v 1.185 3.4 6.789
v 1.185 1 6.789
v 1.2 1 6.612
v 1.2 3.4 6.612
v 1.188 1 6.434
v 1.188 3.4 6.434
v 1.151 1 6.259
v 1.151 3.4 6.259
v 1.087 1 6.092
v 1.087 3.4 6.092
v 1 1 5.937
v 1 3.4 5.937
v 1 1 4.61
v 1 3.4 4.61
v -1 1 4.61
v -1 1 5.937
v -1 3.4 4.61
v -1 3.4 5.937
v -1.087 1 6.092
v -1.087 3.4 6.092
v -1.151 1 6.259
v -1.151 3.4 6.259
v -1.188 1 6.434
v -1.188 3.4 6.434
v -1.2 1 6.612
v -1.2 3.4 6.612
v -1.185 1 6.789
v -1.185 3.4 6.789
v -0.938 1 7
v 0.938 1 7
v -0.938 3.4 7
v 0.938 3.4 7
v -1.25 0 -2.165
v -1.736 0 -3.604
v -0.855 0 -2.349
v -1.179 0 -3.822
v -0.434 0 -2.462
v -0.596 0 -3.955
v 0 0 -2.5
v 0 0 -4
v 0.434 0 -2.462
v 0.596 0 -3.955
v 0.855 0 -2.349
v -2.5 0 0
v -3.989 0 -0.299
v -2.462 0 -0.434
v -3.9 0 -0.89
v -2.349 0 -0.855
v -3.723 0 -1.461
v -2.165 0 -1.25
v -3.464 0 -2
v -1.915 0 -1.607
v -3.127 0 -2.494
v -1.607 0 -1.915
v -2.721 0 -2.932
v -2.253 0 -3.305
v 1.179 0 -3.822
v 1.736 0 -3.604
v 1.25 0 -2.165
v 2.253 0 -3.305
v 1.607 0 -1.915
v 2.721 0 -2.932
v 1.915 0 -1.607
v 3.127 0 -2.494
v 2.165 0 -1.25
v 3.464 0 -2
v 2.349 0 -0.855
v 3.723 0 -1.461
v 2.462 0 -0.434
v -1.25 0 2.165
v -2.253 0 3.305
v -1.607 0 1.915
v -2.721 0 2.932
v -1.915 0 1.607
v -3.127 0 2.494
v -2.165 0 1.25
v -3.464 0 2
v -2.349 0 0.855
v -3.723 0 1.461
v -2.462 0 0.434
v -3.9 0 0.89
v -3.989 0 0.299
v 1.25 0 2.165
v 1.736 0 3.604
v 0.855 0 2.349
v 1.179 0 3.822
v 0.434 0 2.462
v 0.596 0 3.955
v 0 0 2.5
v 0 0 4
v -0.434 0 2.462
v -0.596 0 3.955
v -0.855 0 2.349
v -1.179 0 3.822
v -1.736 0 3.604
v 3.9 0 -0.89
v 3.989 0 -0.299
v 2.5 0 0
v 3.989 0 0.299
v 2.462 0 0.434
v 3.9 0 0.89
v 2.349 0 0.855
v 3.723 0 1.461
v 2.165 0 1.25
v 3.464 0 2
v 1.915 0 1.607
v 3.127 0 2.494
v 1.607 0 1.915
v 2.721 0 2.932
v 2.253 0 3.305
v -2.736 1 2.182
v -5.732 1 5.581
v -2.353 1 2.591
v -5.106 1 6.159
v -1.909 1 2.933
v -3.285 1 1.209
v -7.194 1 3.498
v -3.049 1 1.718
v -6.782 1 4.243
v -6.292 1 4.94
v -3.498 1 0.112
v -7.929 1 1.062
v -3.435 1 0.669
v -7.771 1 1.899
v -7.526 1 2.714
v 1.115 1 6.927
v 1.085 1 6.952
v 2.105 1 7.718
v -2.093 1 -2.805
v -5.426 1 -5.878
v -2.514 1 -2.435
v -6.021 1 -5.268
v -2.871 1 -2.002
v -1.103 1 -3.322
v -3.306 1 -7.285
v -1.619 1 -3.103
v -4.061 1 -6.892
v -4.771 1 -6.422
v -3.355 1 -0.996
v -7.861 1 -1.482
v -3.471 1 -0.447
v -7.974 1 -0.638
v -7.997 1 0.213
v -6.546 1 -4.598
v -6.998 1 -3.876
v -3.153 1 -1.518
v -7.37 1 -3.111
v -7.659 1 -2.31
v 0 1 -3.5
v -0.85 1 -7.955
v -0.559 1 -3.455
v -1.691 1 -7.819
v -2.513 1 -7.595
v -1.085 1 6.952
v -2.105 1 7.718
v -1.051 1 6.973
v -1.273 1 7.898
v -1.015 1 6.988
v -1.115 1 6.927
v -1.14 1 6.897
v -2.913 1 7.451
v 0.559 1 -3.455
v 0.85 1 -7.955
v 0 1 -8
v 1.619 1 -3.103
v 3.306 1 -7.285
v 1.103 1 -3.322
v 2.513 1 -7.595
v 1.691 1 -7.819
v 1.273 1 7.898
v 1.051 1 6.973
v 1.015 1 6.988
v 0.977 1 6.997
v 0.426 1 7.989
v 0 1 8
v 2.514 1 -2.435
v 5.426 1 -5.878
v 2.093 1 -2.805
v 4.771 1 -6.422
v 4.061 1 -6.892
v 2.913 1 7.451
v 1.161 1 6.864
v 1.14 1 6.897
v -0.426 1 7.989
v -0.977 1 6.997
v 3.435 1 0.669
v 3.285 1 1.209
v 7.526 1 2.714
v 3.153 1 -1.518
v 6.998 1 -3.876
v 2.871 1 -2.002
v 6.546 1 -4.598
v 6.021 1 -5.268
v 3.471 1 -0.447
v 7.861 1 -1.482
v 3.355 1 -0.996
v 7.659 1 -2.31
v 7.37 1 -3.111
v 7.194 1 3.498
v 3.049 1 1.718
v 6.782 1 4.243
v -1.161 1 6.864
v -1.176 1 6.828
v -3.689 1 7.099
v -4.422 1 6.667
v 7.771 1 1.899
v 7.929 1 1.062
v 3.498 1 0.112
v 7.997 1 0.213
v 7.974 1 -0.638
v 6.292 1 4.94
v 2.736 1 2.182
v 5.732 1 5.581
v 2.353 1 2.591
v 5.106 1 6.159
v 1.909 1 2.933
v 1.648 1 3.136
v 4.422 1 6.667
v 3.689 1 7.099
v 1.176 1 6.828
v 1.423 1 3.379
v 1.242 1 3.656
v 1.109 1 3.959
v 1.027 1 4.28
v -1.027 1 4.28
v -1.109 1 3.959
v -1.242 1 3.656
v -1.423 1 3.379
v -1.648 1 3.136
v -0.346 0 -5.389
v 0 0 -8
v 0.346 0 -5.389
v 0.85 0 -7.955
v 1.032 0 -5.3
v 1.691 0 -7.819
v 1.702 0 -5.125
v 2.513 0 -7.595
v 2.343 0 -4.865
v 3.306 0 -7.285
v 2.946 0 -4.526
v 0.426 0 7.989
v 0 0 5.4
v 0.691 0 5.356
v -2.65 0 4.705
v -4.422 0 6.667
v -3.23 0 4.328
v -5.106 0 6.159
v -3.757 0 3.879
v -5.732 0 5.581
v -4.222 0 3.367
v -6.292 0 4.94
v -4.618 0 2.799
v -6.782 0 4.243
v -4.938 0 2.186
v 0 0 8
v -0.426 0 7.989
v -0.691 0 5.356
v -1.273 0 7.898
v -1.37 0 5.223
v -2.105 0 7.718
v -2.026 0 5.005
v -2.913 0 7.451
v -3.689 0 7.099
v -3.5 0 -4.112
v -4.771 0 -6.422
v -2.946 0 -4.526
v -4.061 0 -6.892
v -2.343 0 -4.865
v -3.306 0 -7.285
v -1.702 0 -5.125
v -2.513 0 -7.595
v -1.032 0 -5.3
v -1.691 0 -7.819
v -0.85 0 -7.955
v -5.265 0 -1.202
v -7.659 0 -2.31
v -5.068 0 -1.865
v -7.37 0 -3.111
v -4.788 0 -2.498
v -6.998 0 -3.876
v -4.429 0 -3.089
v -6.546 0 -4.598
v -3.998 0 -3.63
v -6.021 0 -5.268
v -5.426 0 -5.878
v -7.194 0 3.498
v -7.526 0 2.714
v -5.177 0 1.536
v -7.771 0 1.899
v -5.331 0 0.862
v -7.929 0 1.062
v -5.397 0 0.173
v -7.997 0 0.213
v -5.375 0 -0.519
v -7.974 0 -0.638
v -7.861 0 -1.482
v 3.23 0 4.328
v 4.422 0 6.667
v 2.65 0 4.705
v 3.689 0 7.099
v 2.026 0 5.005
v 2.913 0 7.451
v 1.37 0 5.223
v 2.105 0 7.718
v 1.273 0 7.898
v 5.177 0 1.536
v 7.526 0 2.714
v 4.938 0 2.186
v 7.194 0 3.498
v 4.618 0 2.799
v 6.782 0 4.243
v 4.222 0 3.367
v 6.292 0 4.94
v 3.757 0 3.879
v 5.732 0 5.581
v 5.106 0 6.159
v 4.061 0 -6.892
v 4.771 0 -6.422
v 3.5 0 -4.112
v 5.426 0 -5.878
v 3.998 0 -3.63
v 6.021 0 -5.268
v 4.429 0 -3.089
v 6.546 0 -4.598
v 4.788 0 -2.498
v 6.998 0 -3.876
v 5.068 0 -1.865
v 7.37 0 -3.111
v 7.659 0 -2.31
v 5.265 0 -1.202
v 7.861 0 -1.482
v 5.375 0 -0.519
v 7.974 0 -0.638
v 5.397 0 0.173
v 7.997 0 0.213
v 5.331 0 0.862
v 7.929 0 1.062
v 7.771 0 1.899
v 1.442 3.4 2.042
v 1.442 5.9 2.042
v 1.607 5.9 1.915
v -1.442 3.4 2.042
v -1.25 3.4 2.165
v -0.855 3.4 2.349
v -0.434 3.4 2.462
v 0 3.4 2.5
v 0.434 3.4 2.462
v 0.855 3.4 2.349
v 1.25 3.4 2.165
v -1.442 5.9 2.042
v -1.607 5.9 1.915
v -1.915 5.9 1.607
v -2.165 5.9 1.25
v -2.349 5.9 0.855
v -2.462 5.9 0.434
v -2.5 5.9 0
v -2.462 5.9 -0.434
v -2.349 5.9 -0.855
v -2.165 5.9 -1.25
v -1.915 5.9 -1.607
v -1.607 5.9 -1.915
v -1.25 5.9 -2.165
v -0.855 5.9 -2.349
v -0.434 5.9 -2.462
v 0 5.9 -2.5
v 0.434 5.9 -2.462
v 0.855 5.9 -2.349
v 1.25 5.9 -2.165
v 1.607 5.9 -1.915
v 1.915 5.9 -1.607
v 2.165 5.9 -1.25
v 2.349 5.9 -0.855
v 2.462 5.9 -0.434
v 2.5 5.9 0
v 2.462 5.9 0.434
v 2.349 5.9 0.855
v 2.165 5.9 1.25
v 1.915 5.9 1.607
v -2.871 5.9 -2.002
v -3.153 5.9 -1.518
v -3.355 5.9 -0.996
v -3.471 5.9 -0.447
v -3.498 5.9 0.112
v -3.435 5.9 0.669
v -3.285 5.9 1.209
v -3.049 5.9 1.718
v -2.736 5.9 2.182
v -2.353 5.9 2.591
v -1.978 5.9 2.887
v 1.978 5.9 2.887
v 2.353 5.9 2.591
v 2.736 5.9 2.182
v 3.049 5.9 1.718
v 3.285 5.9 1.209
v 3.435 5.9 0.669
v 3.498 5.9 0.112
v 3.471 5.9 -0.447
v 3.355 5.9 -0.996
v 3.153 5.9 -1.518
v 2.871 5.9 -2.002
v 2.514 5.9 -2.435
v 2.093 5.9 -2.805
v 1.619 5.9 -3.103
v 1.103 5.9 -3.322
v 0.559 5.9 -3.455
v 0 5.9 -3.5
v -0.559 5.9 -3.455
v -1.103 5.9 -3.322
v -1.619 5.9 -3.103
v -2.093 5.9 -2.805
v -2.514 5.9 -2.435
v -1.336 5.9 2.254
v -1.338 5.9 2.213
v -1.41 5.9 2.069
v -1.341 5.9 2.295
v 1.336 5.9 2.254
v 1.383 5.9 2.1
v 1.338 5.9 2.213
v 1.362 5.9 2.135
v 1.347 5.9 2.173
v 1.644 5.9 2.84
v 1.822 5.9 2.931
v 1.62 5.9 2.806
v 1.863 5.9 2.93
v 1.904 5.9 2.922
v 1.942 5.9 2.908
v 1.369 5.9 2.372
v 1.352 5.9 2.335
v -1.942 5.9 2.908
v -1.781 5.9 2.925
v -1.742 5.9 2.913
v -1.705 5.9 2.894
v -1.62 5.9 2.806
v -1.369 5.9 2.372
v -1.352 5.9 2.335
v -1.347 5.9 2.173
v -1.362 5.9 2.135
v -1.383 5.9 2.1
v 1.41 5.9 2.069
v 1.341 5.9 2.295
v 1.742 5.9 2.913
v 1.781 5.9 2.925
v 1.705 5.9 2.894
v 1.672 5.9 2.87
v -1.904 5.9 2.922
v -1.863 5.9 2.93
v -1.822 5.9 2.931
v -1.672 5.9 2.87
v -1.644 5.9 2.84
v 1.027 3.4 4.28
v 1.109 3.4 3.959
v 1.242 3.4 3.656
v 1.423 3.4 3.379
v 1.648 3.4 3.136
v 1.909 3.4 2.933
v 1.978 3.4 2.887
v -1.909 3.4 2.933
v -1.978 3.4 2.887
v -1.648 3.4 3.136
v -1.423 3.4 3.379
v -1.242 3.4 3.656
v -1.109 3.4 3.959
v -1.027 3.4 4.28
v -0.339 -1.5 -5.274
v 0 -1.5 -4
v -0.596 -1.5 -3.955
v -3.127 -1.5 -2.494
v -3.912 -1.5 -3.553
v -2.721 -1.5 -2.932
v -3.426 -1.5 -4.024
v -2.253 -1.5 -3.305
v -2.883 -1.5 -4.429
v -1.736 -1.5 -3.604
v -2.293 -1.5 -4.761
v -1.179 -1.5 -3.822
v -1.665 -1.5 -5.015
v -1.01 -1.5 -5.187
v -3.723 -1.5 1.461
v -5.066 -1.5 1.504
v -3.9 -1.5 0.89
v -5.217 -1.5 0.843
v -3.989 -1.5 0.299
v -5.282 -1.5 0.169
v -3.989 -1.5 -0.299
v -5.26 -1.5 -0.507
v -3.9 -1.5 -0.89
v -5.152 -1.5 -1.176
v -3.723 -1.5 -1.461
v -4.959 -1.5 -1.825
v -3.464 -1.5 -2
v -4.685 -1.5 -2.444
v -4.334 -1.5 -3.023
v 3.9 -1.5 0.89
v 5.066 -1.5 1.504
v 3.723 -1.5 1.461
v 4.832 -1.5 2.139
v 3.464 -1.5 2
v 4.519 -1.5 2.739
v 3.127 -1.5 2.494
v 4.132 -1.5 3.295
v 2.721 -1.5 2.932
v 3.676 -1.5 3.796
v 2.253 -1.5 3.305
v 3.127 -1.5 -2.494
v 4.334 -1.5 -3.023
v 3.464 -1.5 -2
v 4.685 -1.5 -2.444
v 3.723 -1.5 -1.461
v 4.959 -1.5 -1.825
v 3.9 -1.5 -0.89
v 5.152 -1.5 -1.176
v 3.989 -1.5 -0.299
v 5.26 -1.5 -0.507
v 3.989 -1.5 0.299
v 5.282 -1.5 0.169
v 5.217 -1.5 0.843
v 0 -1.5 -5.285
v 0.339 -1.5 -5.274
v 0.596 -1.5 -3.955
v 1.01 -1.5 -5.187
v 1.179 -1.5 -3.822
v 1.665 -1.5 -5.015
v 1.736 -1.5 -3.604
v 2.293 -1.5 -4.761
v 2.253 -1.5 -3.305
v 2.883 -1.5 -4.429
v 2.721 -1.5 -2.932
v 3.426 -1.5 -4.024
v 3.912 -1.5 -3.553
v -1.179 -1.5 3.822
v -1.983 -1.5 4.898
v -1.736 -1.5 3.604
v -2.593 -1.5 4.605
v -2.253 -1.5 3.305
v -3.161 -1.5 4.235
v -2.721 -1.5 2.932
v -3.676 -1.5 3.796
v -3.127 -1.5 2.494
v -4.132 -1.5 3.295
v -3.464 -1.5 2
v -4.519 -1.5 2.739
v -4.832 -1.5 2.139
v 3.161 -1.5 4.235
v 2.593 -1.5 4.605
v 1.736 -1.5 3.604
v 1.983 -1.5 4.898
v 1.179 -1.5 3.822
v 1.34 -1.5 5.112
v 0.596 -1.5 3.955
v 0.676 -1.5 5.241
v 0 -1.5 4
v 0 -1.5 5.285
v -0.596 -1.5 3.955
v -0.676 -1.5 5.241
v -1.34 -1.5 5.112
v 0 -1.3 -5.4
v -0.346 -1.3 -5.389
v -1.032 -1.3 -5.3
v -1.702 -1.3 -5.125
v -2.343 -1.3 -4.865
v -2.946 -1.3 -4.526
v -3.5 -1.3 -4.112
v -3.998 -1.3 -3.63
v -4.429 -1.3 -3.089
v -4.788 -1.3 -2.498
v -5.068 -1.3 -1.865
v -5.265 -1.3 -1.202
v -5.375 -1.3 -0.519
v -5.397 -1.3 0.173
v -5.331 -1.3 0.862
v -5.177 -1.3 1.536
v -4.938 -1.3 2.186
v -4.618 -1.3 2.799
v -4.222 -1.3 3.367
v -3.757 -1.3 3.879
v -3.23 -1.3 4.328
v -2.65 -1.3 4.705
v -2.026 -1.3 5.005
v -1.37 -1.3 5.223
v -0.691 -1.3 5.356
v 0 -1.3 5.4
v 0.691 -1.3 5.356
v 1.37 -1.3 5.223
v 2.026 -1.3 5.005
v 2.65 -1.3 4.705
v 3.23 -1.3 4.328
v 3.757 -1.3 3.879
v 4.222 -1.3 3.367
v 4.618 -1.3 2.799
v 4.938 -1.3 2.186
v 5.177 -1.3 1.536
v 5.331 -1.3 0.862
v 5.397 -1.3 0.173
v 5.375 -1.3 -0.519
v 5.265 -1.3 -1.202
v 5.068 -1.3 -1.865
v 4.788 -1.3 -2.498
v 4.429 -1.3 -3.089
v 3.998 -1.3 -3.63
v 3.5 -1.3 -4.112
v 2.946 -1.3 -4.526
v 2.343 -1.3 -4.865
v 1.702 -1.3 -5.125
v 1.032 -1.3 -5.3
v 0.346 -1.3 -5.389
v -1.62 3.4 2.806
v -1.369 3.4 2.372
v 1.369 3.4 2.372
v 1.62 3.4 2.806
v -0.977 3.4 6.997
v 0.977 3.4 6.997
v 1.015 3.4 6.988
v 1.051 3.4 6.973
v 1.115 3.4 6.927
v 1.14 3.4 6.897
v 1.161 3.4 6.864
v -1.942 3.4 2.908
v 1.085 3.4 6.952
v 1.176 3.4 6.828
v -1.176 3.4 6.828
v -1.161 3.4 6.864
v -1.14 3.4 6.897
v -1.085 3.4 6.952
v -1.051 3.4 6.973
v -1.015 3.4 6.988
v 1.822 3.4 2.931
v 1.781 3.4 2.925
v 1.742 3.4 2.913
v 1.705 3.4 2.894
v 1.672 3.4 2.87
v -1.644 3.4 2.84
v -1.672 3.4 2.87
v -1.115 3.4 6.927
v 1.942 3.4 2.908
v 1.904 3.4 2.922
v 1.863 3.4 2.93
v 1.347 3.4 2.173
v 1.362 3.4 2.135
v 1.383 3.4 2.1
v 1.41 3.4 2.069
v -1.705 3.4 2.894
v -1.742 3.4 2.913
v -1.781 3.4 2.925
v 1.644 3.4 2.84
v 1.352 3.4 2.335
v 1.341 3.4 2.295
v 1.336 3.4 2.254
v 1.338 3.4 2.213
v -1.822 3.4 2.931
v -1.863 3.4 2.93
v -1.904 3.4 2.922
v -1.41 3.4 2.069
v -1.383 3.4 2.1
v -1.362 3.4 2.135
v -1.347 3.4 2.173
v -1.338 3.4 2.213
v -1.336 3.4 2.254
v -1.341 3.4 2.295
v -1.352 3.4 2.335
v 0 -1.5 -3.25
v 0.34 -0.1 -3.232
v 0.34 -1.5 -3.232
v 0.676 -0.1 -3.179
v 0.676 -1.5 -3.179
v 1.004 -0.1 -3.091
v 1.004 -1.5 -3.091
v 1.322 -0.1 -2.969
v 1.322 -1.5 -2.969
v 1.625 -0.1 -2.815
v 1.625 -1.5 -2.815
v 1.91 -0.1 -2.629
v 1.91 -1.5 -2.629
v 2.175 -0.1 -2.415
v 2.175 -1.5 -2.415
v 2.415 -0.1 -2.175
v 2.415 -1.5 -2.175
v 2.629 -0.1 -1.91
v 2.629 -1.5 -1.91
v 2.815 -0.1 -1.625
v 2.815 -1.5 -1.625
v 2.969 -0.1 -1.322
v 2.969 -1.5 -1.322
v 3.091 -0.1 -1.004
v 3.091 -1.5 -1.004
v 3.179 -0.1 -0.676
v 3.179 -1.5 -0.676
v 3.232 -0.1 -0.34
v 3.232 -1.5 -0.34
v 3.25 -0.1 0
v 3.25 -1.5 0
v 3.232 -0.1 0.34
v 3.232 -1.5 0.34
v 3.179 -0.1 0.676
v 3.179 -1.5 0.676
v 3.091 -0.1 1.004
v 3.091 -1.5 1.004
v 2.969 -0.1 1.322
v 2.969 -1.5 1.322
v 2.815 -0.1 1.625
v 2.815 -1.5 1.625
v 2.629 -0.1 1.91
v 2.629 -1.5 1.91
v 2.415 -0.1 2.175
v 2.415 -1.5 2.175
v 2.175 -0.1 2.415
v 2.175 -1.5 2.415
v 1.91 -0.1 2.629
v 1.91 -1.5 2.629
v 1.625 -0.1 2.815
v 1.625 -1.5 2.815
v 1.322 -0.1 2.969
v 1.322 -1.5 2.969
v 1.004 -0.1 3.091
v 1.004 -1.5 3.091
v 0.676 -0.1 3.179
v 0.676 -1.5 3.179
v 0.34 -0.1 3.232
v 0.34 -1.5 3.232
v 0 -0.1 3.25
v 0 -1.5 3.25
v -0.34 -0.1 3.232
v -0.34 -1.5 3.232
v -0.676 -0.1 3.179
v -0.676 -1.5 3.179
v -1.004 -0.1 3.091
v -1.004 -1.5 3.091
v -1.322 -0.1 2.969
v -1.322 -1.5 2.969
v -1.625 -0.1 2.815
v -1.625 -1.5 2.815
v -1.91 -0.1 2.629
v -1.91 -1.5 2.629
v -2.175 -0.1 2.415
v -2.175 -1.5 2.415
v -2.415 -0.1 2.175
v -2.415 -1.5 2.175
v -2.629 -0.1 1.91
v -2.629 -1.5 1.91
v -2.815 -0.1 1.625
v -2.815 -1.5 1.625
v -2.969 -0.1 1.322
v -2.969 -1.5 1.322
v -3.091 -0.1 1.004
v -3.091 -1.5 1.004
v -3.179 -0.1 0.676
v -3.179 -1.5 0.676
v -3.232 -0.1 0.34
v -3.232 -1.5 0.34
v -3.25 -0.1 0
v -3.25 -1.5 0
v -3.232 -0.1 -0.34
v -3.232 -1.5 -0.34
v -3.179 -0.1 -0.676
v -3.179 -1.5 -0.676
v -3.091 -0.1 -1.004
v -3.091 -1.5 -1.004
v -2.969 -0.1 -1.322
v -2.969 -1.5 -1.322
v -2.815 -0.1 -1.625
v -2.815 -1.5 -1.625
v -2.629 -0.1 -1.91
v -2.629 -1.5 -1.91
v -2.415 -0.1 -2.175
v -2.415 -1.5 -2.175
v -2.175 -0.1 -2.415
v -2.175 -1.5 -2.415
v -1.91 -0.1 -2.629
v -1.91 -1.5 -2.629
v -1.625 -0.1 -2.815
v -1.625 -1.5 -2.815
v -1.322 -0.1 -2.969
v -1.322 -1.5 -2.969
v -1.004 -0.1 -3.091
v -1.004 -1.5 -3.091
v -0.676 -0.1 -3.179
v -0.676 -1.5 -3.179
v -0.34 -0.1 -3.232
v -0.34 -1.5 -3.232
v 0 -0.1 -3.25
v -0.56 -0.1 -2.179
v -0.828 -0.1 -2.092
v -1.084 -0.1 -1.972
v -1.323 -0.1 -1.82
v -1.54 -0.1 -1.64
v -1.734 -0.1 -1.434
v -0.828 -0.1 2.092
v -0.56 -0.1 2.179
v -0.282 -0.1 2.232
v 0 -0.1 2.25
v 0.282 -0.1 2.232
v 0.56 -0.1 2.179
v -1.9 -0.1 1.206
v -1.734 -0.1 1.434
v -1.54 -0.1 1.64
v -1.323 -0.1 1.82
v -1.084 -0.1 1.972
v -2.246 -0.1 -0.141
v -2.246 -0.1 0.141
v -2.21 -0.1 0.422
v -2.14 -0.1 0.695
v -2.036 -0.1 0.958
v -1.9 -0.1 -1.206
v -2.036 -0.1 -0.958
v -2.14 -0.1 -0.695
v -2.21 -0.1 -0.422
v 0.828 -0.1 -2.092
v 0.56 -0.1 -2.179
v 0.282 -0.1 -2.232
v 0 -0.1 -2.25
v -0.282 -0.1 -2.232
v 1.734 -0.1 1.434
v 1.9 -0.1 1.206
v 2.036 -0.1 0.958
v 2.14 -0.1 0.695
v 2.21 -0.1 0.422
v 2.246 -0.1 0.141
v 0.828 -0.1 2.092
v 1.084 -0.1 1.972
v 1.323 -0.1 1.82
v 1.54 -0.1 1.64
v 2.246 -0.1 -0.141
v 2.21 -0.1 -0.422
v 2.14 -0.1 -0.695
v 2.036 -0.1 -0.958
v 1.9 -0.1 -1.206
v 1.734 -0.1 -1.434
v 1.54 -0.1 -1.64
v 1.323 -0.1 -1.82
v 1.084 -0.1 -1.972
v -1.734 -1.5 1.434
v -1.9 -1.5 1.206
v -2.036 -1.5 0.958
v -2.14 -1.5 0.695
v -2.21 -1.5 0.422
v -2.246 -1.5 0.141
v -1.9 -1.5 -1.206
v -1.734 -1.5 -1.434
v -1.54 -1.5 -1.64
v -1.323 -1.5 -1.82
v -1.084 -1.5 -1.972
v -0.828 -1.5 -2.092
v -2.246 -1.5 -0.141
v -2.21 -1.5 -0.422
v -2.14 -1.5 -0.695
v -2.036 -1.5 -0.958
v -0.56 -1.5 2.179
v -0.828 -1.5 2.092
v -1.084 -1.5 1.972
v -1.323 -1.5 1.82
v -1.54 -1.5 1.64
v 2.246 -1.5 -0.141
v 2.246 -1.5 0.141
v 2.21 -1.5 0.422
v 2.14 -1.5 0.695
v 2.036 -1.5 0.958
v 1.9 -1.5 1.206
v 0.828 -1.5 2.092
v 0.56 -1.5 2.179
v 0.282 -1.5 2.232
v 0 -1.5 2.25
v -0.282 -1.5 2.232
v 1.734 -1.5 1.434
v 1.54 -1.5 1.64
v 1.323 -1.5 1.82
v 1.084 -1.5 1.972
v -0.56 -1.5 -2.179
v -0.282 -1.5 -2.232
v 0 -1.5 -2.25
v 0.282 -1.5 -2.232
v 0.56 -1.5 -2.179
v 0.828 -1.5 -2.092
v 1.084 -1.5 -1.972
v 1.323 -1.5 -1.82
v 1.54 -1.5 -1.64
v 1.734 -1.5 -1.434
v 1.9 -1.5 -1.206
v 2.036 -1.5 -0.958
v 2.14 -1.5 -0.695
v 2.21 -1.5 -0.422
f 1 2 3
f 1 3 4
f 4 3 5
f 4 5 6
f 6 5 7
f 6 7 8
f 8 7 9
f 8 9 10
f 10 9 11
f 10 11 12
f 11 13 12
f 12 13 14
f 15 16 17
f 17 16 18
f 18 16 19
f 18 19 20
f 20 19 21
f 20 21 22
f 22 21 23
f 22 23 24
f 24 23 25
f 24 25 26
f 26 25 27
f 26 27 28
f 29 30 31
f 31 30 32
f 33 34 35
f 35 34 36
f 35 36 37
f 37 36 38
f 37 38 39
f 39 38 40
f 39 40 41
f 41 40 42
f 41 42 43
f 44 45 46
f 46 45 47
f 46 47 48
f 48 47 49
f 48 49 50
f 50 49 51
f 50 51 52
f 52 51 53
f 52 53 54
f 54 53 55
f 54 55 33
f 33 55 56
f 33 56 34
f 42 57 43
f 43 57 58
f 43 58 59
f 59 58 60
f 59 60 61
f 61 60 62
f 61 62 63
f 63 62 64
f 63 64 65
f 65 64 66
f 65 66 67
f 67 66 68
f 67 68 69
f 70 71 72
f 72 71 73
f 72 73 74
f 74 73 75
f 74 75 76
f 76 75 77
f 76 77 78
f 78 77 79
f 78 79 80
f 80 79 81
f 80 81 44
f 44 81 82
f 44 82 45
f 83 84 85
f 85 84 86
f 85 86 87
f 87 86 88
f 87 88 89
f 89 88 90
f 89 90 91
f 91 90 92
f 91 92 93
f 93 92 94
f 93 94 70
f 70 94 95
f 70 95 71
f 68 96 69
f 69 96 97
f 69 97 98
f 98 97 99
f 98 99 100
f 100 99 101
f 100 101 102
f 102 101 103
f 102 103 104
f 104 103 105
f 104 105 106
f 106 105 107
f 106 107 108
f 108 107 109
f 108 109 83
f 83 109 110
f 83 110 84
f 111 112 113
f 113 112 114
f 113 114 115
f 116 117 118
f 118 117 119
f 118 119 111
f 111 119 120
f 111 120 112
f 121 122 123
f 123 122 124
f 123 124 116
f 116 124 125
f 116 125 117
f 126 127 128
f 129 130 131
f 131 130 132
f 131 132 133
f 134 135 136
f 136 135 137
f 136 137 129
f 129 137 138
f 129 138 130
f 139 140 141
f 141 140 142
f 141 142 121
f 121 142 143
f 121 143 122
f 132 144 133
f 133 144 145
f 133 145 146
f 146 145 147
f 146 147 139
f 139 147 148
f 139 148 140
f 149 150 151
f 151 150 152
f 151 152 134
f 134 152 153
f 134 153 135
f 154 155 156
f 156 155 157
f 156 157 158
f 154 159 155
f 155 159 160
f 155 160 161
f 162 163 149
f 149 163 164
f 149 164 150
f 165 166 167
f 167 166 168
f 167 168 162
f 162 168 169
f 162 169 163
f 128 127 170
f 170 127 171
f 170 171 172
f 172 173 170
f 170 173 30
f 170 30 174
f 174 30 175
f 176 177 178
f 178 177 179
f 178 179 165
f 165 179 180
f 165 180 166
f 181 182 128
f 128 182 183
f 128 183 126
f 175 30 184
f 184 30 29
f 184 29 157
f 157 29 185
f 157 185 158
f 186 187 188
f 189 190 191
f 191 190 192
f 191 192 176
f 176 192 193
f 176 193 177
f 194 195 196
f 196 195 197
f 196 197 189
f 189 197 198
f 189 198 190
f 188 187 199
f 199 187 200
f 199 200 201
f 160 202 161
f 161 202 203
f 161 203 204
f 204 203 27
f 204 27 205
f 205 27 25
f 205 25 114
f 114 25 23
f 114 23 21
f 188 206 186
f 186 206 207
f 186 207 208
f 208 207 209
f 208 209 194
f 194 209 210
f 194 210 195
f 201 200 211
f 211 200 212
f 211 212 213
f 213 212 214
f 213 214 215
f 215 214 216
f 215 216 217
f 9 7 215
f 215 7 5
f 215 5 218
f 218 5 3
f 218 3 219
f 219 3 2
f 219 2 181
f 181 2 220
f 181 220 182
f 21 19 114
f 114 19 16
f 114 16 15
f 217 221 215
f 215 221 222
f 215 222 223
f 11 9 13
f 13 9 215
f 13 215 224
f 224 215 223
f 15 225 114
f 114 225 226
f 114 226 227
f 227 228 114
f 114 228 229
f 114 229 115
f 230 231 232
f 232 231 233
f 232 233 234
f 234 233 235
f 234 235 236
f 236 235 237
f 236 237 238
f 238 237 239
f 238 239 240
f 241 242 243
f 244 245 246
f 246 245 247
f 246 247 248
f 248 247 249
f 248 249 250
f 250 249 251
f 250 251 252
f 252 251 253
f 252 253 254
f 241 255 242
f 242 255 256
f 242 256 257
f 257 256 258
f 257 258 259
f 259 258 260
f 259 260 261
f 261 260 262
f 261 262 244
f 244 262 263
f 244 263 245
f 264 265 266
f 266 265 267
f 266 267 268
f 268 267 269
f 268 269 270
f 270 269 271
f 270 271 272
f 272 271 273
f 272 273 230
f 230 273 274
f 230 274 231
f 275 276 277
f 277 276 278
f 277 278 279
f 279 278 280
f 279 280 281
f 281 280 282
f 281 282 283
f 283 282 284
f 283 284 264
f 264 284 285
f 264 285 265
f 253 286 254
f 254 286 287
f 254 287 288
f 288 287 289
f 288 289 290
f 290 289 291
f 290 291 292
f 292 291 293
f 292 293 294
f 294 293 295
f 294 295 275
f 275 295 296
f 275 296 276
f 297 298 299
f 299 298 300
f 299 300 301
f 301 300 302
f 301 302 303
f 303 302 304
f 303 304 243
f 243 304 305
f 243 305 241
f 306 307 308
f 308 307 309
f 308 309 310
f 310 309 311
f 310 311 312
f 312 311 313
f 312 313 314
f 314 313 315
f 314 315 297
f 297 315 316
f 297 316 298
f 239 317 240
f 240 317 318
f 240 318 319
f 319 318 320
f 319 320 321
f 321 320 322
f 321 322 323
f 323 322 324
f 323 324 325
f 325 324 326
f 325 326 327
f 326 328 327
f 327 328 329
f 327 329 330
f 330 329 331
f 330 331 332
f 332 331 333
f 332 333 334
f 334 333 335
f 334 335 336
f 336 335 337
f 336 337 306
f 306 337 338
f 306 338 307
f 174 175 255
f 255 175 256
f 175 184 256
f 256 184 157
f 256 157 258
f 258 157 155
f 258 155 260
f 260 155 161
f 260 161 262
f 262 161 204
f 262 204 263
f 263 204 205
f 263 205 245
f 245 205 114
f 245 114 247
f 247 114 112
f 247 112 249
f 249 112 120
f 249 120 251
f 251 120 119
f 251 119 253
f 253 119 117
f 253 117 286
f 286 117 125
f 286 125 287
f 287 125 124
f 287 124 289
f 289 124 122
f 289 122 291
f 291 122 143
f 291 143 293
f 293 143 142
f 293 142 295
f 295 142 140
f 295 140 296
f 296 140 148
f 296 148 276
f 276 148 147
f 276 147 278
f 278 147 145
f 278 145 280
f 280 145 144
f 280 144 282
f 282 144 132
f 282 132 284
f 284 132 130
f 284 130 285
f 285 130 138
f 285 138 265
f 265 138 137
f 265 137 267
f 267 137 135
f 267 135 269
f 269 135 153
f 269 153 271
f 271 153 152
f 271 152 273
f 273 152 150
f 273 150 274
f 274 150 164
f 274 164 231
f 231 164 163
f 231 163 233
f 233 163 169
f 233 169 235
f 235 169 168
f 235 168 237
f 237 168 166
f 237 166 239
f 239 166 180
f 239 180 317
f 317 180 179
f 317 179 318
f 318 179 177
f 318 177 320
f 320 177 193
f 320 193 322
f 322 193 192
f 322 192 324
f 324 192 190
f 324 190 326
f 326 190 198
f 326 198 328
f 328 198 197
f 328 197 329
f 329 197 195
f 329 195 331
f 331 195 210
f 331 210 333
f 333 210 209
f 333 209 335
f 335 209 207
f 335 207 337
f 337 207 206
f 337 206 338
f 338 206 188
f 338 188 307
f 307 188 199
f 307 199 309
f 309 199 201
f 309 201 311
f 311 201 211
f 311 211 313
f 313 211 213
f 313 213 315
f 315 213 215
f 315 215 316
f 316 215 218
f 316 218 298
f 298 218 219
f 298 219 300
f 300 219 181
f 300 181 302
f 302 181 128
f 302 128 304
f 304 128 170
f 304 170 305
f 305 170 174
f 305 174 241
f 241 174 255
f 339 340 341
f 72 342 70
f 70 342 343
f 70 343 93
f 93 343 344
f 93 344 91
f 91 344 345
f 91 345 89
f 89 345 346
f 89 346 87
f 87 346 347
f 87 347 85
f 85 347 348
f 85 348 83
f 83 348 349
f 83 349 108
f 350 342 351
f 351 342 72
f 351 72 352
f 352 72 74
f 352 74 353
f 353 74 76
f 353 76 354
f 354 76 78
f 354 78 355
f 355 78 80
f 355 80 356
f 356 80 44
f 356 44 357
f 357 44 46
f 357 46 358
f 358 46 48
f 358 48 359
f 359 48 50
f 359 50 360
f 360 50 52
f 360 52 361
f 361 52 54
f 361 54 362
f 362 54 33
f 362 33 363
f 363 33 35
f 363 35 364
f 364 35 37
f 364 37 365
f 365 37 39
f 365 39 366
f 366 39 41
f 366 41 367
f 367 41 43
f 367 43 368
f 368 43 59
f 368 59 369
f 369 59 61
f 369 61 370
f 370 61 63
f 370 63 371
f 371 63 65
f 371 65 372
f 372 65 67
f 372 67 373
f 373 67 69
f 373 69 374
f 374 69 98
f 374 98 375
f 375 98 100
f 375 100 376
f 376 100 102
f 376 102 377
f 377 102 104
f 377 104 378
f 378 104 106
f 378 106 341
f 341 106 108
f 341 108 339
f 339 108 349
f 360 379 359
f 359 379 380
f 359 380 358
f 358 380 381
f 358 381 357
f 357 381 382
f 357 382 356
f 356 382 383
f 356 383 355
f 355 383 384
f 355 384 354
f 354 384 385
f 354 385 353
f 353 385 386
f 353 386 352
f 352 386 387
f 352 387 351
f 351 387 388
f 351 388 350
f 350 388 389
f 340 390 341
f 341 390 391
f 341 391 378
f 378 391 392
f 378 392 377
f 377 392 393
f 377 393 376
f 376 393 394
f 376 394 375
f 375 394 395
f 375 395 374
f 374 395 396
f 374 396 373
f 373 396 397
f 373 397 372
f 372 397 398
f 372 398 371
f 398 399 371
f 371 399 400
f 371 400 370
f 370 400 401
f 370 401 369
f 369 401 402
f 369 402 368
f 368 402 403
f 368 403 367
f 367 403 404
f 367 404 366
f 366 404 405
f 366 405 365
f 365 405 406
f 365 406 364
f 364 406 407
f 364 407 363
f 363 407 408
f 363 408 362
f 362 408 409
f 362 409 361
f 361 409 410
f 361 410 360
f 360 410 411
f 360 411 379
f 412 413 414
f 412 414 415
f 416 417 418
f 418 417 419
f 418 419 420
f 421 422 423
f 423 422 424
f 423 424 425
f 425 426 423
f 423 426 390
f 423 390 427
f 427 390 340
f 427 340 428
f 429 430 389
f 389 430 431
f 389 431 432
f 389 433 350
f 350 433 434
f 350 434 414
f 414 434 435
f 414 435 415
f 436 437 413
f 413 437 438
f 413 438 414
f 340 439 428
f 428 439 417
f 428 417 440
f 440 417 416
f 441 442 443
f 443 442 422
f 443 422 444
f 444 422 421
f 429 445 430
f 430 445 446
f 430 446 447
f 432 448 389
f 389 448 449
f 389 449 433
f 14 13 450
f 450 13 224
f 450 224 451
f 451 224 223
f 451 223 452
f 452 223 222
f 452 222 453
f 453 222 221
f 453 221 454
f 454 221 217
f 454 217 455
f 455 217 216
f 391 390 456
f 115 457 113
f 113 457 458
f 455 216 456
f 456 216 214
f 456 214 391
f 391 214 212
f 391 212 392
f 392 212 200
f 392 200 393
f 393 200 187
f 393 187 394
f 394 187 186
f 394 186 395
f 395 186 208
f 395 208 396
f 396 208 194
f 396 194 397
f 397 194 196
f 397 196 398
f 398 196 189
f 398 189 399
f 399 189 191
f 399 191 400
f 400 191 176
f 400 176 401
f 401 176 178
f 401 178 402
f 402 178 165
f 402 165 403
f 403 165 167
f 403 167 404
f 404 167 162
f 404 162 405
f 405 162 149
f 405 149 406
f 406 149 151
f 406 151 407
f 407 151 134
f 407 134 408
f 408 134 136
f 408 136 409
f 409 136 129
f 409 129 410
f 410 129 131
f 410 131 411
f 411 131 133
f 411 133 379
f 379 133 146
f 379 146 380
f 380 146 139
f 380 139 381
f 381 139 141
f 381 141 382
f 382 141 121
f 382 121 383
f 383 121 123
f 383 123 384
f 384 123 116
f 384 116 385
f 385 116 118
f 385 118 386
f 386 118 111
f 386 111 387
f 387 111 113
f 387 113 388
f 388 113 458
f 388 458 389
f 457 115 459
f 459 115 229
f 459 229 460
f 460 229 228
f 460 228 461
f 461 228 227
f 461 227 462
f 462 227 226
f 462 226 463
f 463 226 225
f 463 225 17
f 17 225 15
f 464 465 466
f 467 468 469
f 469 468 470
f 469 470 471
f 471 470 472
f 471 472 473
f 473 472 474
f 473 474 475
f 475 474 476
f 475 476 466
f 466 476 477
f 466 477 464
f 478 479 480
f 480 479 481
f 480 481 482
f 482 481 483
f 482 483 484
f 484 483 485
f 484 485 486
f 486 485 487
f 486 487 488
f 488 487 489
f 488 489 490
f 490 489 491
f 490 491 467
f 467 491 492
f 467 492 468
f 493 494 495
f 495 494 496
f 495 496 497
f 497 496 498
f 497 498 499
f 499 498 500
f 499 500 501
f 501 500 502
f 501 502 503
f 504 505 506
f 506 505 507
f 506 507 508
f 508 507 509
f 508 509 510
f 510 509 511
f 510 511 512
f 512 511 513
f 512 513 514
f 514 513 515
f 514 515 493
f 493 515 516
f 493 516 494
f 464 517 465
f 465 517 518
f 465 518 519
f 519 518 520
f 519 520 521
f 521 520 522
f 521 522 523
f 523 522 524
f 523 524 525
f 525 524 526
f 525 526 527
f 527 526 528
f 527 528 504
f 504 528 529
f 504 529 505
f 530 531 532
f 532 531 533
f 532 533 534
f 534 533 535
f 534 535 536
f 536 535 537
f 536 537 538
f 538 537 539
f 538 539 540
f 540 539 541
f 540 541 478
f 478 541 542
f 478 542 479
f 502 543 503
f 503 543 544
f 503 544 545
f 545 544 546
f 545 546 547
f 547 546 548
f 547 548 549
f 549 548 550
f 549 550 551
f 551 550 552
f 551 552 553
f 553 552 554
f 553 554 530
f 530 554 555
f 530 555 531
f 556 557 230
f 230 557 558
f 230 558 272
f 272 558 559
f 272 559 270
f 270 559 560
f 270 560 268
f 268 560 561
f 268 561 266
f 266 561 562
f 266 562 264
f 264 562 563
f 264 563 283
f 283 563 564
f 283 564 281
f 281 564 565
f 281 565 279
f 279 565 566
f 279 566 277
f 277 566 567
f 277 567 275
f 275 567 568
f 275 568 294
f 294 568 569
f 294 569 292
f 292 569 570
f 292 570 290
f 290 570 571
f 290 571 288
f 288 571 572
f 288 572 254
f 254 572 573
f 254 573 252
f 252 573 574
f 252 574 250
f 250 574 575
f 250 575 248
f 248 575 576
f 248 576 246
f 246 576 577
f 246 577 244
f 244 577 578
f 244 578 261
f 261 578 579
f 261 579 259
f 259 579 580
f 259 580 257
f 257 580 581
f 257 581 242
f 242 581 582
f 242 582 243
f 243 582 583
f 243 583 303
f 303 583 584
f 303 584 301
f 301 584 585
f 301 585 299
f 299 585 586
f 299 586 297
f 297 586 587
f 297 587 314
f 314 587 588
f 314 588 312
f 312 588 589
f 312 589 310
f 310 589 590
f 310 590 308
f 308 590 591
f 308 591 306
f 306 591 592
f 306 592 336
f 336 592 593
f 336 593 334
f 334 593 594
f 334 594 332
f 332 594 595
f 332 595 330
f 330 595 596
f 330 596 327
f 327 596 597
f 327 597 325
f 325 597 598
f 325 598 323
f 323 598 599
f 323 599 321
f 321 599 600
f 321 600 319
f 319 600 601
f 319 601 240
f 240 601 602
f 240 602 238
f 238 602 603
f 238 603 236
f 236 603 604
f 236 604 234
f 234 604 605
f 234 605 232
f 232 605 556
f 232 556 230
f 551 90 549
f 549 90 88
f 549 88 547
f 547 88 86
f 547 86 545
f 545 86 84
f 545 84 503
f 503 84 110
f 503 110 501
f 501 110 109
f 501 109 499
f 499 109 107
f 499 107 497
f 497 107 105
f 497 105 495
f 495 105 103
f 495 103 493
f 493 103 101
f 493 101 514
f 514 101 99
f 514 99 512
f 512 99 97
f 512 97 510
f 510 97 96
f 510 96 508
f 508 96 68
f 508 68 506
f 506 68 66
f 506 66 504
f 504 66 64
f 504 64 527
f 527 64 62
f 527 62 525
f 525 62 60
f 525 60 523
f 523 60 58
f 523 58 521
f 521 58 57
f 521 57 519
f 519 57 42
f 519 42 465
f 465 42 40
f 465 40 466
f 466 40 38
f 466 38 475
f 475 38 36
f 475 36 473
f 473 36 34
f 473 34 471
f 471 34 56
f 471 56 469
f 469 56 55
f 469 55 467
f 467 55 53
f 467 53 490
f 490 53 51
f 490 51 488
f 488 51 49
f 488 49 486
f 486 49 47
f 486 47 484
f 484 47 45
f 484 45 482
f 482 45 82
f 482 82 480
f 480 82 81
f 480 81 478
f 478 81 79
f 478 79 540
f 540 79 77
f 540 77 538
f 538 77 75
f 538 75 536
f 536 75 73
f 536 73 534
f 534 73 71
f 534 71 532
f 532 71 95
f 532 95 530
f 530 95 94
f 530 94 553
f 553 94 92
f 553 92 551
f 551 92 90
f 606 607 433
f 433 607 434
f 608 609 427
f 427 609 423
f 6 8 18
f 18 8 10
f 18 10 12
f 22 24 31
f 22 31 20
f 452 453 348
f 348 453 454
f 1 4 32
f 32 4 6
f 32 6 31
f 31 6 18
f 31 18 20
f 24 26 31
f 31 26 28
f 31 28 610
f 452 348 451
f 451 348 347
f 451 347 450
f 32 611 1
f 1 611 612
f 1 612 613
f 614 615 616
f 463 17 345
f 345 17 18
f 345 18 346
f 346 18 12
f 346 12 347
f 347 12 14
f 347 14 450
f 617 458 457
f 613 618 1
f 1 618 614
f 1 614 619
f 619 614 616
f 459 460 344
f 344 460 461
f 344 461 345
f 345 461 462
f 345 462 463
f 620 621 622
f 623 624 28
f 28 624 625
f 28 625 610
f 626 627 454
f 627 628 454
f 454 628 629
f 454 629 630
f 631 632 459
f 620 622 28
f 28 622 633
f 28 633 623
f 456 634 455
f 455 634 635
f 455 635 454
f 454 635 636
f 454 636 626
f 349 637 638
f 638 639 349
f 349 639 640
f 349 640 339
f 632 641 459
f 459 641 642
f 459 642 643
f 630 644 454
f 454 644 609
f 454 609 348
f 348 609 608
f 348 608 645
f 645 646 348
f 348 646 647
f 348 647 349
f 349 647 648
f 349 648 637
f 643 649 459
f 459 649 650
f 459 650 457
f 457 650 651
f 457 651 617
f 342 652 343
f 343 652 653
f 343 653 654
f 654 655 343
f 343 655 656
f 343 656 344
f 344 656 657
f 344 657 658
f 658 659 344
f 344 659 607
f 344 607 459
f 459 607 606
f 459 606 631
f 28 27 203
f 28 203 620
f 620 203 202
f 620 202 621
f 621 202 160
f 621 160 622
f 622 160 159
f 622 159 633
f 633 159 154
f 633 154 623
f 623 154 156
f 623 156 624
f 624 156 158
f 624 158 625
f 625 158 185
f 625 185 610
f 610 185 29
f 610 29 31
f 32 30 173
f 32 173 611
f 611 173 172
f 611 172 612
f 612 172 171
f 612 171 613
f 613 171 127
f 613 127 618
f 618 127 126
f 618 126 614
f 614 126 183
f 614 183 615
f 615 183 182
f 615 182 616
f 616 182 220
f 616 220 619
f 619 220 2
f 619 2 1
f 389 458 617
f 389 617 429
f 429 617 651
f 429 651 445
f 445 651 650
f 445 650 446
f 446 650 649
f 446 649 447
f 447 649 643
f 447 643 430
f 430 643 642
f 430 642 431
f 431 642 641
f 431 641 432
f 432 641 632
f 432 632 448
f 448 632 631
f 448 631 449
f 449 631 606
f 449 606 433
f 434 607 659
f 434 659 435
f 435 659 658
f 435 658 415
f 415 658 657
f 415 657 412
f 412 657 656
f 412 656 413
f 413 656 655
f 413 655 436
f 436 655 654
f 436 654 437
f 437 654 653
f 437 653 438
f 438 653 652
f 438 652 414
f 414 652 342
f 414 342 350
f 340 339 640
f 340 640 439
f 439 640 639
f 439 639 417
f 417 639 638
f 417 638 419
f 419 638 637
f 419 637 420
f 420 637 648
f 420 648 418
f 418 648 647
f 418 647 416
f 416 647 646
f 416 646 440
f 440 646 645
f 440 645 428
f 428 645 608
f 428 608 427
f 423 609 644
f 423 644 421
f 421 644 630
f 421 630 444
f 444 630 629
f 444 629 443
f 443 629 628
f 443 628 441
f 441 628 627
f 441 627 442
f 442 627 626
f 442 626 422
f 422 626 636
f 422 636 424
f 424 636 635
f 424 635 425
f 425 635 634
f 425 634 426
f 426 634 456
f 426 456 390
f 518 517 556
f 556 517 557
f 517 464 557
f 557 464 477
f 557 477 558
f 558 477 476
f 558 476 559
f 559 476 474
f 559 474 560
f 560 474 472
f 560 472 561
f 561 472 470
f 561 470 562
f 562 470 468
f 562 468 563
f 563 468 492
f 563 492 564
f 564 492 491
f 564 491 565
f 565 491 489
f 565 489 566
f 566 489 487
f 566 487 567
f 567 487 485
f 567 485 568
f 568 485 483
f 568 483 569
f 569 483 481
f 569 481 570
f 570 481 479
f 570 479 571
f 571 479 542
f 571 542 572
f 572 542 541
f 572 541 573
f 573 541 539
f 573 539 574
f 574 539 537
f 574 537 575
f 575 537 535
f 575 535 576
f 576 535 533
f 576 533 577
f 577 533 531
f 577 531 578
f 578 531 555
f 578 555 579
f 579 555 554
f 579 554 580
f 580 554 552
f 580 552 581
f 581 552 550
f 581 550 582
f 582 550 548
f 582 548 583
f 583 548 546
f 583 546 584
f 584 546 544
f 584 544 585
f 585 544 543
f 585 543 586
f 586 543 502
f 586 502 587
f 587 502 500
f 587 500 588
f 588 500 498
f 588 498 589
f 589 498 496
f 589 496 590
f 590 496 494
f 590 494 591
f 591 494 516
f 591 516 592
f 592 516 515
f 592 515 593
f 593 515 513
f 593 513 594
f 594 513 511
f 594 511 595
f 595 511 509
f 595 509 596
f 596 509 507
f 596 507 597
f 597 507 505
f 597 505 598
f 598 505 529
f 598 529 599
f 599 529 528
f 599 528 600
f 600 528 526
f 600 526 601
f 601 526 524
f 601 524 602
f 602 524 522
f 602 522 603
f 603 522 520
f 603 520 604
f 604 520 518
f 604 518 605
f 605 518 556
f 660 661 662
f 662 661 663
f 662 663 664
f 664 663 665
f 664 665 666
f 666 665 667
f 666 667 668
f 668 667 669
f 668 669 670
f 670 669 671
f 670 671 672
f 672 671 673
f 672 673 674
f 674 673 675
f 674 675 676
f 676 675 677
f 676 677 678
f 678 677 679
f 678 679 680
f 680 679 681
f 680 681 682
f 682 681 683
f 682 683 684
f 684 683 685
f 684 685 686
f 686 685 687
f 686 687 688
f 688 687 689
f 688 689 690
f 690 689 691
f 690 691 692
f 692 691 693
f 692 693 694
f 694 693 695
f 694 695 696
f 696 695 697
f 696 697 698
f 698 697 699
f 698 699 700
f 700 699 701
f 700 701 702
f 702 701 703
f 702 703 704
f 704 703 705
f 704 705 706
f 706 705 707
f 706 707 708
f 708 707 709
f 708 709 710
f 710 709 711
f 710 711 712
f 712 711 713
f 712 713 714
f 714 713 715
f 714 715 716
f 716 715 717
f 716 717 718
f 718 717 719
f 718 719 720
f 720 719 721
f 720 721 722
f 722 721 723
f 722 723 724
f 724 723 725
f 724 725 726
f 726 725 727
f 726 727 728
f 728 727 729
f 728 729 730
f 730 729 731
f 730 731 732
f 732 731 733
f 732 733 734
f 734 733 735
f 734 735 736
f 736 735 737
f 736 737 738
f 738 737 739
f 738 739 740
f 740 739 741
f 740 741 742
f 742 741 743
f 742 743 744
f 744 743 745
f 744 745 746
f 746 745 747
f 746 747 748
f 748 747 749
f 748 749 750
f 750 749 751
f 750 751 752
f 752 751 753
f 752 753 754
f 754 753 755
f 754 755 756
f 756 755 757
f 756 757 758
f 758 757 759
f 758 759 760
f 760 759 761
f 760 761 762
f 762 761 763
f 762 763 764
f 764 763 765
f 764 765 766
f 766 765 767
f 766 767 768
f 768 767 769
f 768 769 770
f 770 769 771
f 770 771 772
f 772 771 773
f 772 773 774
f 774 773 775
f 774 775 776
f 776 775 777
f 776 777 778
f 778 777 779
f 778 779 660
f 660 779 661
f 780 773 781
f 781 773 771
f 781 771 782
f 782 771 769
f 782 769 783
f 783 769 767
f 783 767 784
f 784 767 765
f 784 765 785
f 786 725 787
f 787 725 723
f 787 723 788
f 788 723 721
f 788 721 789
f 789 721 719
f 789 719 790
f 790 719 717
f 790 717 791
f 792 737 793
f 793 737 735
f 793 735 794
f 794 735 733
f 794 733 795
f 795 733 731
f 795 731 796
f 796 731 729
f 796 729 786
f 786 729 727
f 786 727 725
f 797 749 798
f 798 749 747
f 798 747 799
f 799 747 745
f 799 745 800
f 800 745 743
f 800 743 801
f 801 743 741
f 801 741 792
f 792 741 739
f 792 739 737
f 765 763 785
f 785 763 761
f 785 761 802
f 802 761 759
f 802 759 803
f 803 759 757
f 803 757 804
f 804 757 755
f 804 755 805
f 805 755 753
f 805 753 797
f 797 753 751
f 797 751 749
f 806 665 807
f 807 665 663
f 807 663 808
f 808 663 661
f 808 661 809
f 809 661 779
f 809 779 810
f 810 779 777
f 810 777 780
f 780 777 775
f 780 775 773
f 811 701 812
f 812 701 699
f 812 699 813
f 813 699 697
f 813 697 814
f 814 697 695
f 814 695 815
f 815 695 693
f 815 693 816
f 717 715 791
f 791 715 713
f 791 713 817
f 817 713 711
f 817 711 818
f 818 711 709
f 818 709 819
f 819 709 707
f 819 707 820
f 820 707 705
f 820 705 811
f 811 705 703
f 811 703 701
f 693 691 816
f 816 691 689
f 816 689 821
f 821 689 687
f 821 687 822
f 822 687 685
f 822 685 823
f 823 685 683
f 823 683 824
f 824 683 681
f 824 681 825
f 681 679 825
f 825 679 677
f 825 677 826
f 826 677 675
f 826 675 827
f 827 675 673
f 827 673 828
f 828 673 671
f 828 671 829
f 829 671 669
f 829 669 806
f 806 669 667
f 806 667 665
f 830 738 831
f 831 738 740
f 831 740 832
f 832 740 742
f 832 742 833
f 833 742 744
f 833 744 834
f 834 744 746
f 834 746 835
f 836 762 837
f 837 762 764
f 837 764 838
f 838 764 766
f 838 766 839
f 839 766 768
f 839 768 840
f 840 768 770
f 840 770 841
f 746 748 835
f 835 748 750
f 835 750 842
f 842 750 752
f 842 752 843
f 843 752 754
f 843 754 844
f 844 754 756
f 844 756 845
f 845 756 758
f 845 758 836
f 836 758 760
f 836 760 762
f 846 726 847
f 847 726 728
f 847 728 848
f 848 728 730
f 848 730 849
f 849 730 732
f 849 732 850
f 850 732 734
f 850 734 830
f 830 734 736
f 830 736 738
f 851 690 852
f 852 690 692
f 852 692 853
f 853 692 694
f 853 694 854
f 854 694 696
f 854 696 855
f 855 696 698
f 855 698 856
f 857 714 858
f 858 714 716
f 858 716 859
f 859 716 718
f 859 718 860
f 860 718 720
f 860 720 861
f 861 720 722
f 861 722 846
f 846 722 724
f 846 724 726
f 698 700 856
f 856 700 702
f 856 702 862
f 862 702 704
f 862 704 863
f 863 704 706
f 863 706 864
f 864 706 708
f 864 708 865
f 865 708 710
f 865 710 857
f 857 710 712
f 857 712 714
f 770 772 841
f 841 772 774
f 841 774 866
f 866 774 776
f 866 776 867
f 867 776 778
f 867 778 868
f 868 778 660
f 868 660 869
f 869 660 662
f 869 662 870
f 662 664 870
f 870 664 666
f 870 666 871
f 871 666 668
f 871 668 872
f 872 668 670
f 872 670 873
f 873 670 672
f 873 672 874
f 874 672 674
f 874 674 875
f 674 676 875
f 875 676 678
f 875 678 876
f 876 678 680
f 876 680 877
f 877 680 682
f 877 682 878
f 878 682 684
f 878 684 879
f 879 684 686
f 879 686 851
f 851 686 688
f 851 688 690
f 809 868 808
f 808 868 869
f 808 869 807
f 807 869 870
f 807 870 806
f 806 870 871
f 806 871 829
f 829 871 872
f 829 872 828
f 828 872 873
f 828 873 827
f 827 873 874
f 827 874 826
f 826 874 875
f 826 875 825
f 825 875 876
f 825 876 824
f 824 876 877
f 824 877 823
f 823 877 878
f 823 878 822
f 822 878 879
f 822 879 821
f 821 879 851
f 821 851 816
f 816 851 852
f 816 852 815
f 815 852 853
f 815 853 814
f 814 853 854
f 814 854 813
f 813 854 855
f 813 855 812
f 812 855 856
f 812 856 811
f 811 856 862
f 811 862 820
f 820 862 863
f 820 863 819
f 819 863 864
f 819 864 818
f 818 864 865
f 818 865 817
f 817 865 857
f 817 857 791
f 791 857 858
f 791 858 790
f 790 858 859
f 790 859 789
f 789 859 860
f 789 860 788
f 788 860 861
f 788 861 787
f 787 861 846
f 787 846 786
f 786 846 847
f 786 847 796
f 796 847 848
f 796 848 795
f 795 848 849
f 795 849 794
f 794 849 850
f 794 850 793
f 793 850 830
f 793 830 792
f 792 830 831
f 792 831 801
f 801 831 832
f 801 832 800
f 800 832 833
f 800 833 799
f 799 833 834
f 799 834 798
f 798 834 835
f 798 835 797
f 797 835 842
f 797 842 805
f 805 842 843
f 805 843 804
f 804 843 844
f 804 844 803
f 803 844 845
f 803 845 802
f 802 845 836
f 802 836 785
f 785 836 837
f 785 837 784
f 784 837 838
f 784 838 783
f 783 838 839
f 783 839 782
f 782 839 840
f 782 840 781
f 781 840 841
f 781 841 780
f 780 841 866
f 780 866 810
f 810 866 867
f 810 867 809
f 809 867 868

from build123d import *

# Parameters (mm, degrees)
ESQUISSE1_R             = 8
ESQUISSE1_R_2           = 2.5
BOSS_EXTRU_1_DEPTH      = 1
ESQUISSE2_R             = 2.5
BOSS_EXTRU_2_DEPTH      = 4.9
ESQUISSE4_R             = 5.4
ESQUISSE4_R_2           = 4
BOSS_EXTRU_3_DEPTH      = 1.5
ENL_V_START             = -2.5
ENL_V_MAT_EXTRU_3_DEPTH = 2.5
CONG_4_R                = 0.25
ESQUISSE6_R             = 3.25
ESQUISSE6_R_2           = 2.25
BOSS_EXTRU_4_DEPTH      = 1.4
CHANFREIN1_SIZE         = 0.2
CHANFREIN1_SIZE2        = 0.115470054


with BuildPart() as part:
    # Esquisse1 → Boss.-Extru.1 (new body)
    with BuildSketch(Plane(origin=(0, 0, 0), x_dir=(1, 0, 0), z_dir=(0, 1, 0))):
        with Locations(Location((0, 0, 0), (0, 0, 270))):
            Circle(ESQUISSE1_R)
        with Locations(Location((0, 0, 0), (0, 0, 270))):
            Circle(ESQUISSE1_R_2, mode=Mode.SUBTRACT)
    extrude(amount=BOSS_EXTRU_1_DEPTH)

    # Esquisse2 → Boss.-Extru.2 (add)
    with BuildSketch(Plane(origin=(0, 1, 0), x_dir=(1, 0, 0), z_dir=(0, 1, 0))):
        with BuildLine():
            Line((-1, -5.936675042), (-1, -4.609772229))
            ThreePointArc((-1, -4.609772229), (-1.241901854, -3.656309639), (-1.909090909, -2.933491418))
            ThreePointArc((-1.909090909, -2.933491418), (0, 3.5), (1.909090909, -2.933491418))
            ThreePointArc((1.909090909, -2.933491418), (1.241901854, -3.656309639), (1, -4.609772229))
            Line((1, -4.609772229), (1, -5.936675042))
            ThreePointArc((1, -5.936675042), (1.190945178, -6.452862026), (1.13137085, -7))
            Line((1.13137085, -7), (-1.13137085, -7))
            ThreePointArc((-1.13137085, -7), (-1.190945178, -6.452862026), (-1, -5.936675042))
        make_face()
        with Locations(Location((0, 0, 0), (0, 0, 270))):
            Circle(ESQUISSE2_R, mode=Mode.SUBTRACT)
    extrude(amount=BOSS_EXTRU_2_DEPTH)

    # Esquisse4 → Boss.-Extru.3 (add)
    with BuildSketch(Plane.XZ):
        with Locations(Location((0, 0, 0), (0, 0, 90))):
            Circle(ESQUISSE4_R)
        with Locations(Location((0, 0, 0), (0, 0, 270))):
            Circle(ESQUISSE4_R_2, mode=Mode.SUBTRACT)
    extrude(amount=BOSS_EXTRU_3_DEPTH)

    # Esquisse5 → Enlèv. mat.-Extru.3 (cut)
    with BuildSketch(Plane(origin=(0, 5.9, 0), x_dir=(1, 0, 0), z_dir=(0, 1, 0)).offset(ENL_V_START)):
        with BuildLine():
            Line((-1.25, -2.165063509), (-1.756893339, -3.043028526))
            ThreePointArc((-1.756893339, -3.043028526), (-1.199137245, -3.739776057), (-1, -4.609772229))
            Line((-1, -4.609772229), (-1, -5.936675042))
            ThreePointArc((-1, -5.936675042), (-1.190945178, -6.452862026), (-1.13137085, -7))
            Line((-1.13137085, -7), (1.13137085, -7))
            ThreePointArc((1.13137085, -7), (1.190945178, -6.452862026), (1, -5.936675042))
            Line((1, -5.936675042), (1, -4.609772229))
            ThreePointArc((1, -4.609772229), (1.199137245, -3.739776057), (1.756893339, -3.043028526))
            Line((1.756893339, -3.043028526), (1.25, -2.165063509))
            ThreePointArc((1.25, -2.165063509), (0, -2.5), (-1.25, -2.165063509))
        make_face()
    extrude(amount=ENL_V_MAT_EXTRU_3_DEPTH, mode=Mode.SUBTRACT)

    # Congé4
    # the kernel refuses this fillet: 0.25 mm, written as the material it takes off along each edge
    with BuildSketch(Plane(origin=(-1.756893339, 3.4, 3.043028526), x_dir=(-0.8178765908419041, 0, -0.5753936758019024), z_dir=(0, 1, 0))) as cong_4_piece_1:
        with BuildLine():
            CenterArc((0.27343415, -0.249980508), CONG_4_R, 90.715480429, 94.411725785)
            Line((0.024434464, -0.272322319), (-0.000465505, -0.2745565))
            Line((-0.000465505, -0.2745565), (-0.024899969, -0.002234181))
            Line((-0.024899969, -0.002234181), (0.001440168, 0.024958484))
            ThreePointArc((0.001440168, 0.024958484), (0.186602135, 0.022969346), (0.270000179, 0.024998051))
            Line((0.270000179, 0.024998051), (0.270312359, 0))
        make_face()
    extrude(amount=3.183540821, mode=Mode.SUBTRACT)
    with BuildSketch(Plane(origin=(-1.25, 3.4, 2.165063509), x_dir=(-0.5000000000000009, 0, 0.866025403784438), z_dir=(0, 1, 0))) as cong_4_piece_2:
        with BuildLine():
            CenterArc((0.238612788, -0.25), CONG_4_R, 90, 84.78409143)
            ThreePointArc((-0.010352011, -0.227272727), (-0.002589344, -0.113754183), (0, 0))
            Line((0, 0), (0.238612788, 0))
        make_face()
    extrude(amount=3.096531969, mode=Mode.SUBTRACT)
    with BuildSketch(Plane(origin=(1.25, 3.4, 2.165063509), x_dir=(0.5000000000000017, 0, 0.8660254037844376), z_dir=(0, 1, 0))) as cong_4_piece_3:
        with BuildLine():
            CenterArc((0.238612788, 0.25), CONG_4_R, 185.21590857, 84.78409143)
            ThreePointArc((-0.010352011, 0.227272727), (-0.002589344, 0.113754183), (0, 0))
            Line((0, 0), (0.238612788, 0))
        make_face()
    extrude(amount=3.096531969, mode=Mode.SUBTRACT)
    with BuildSketch(Plane(origin=(1.756893339, 3.4, 3.043028526), x_dir=(0.817876590841908, 0, -0.5753936758018968), z_dir=(0, 1, 0))) as cong_4_piece_4:
        with BuildLine():
            CenterArc((0.27343415, 0.249980508), CONG_4_R, 174.872793786, 94.411725785)
            Line((0.024434464, 0.272322319), (-0.000465505, 0.2745565))
            Line((-0.000465505, 0.2745565), (-0.024899969, 0.002234181))
            Line((-0.024899969, 0.002234181), (0.001440168, -0.024958484))
            ThreePointArc((0.001440168, -0.024958484), (0.186602135, -0.022969346), (0.270000179, -0.024998051))
            Line((0.270000179, -0.024998051), (0.270312359, 0))
        make_face()
    extrude(amount=3.183540821, mode=Mode.SUBTRACT)
    with BuildSketch(Plane(origin=(-1.13137085, 1, 7), x_dir=(1, 0, 0), z_dir=(0, 1, 0))) as cong_4_piece_5:
        with BuildLine():
            CenterArc((0.193287698, 0.25), CONG_4_R, 189.084720287, 80.915279713)
            ThreePointArc((-0.053576289, 0.210526316), (-0.031561904, 0.104048297), (0, 0))
            Line((0, 0), (0.193287698, 0))
        make_face()
    extrude(amount=2.943091546, mode=Mode.SUBTRACT)
    with BuildSketch(Plane(origin=(1.13137085, 1, 7), x_dir=(-1, 0, 0), z_dir=(0, 1, 0))) as cong_4_piece_6:
        with BuildLine():
            CenterArc((0.193287698, -0.25), CONG_4_R, 90, 80.915279713)
            ThreePointArc((-0.053576289, -0.210526316), (-0.031561904, -0.104048297), (0, 0))
            Line((0, 0), (0.193287698, 0))
        make_face()
    extrude(amount=2.943091546, mode=Mode.SUBTRACT)

    # Chanfrein1
    chanfrein1_edges = [part.edges().sort_by_distance(p)[0] for p in [
        (0, -1.5, -5.4),
    ]]
    chanfrein1_side = [part.faces().sort_by_distance(p)[0] for p in [
        (0, -0.75, -5.4),
    ]]
    chamfer(chanfrein1_edges, length=CHANFREIN1_SIZE, length2=CHANFREIN1_SIZE2, reference=chanfrein1_side[0])


with BuildPart() as body_2:
    # Esquisse6 → Boss.-Extru.4 (new body)
    with BuildSketch(Plane.XZ.offset(1.5)):
        with Locations(Location((0, 0, 0), (0, 0, 270))):
            Circle(ESQUISSE6_R)
        with Locations(Location((0, 0, 0), (0, 0, 270))):
            Circle(ESQUISSE6_R_2, mode=Mode.SUBTRACT)
    extrude(amount=-BOSS_EXTRU_4_DEPTH)


solid = Compound([part.part, body_2.part])
